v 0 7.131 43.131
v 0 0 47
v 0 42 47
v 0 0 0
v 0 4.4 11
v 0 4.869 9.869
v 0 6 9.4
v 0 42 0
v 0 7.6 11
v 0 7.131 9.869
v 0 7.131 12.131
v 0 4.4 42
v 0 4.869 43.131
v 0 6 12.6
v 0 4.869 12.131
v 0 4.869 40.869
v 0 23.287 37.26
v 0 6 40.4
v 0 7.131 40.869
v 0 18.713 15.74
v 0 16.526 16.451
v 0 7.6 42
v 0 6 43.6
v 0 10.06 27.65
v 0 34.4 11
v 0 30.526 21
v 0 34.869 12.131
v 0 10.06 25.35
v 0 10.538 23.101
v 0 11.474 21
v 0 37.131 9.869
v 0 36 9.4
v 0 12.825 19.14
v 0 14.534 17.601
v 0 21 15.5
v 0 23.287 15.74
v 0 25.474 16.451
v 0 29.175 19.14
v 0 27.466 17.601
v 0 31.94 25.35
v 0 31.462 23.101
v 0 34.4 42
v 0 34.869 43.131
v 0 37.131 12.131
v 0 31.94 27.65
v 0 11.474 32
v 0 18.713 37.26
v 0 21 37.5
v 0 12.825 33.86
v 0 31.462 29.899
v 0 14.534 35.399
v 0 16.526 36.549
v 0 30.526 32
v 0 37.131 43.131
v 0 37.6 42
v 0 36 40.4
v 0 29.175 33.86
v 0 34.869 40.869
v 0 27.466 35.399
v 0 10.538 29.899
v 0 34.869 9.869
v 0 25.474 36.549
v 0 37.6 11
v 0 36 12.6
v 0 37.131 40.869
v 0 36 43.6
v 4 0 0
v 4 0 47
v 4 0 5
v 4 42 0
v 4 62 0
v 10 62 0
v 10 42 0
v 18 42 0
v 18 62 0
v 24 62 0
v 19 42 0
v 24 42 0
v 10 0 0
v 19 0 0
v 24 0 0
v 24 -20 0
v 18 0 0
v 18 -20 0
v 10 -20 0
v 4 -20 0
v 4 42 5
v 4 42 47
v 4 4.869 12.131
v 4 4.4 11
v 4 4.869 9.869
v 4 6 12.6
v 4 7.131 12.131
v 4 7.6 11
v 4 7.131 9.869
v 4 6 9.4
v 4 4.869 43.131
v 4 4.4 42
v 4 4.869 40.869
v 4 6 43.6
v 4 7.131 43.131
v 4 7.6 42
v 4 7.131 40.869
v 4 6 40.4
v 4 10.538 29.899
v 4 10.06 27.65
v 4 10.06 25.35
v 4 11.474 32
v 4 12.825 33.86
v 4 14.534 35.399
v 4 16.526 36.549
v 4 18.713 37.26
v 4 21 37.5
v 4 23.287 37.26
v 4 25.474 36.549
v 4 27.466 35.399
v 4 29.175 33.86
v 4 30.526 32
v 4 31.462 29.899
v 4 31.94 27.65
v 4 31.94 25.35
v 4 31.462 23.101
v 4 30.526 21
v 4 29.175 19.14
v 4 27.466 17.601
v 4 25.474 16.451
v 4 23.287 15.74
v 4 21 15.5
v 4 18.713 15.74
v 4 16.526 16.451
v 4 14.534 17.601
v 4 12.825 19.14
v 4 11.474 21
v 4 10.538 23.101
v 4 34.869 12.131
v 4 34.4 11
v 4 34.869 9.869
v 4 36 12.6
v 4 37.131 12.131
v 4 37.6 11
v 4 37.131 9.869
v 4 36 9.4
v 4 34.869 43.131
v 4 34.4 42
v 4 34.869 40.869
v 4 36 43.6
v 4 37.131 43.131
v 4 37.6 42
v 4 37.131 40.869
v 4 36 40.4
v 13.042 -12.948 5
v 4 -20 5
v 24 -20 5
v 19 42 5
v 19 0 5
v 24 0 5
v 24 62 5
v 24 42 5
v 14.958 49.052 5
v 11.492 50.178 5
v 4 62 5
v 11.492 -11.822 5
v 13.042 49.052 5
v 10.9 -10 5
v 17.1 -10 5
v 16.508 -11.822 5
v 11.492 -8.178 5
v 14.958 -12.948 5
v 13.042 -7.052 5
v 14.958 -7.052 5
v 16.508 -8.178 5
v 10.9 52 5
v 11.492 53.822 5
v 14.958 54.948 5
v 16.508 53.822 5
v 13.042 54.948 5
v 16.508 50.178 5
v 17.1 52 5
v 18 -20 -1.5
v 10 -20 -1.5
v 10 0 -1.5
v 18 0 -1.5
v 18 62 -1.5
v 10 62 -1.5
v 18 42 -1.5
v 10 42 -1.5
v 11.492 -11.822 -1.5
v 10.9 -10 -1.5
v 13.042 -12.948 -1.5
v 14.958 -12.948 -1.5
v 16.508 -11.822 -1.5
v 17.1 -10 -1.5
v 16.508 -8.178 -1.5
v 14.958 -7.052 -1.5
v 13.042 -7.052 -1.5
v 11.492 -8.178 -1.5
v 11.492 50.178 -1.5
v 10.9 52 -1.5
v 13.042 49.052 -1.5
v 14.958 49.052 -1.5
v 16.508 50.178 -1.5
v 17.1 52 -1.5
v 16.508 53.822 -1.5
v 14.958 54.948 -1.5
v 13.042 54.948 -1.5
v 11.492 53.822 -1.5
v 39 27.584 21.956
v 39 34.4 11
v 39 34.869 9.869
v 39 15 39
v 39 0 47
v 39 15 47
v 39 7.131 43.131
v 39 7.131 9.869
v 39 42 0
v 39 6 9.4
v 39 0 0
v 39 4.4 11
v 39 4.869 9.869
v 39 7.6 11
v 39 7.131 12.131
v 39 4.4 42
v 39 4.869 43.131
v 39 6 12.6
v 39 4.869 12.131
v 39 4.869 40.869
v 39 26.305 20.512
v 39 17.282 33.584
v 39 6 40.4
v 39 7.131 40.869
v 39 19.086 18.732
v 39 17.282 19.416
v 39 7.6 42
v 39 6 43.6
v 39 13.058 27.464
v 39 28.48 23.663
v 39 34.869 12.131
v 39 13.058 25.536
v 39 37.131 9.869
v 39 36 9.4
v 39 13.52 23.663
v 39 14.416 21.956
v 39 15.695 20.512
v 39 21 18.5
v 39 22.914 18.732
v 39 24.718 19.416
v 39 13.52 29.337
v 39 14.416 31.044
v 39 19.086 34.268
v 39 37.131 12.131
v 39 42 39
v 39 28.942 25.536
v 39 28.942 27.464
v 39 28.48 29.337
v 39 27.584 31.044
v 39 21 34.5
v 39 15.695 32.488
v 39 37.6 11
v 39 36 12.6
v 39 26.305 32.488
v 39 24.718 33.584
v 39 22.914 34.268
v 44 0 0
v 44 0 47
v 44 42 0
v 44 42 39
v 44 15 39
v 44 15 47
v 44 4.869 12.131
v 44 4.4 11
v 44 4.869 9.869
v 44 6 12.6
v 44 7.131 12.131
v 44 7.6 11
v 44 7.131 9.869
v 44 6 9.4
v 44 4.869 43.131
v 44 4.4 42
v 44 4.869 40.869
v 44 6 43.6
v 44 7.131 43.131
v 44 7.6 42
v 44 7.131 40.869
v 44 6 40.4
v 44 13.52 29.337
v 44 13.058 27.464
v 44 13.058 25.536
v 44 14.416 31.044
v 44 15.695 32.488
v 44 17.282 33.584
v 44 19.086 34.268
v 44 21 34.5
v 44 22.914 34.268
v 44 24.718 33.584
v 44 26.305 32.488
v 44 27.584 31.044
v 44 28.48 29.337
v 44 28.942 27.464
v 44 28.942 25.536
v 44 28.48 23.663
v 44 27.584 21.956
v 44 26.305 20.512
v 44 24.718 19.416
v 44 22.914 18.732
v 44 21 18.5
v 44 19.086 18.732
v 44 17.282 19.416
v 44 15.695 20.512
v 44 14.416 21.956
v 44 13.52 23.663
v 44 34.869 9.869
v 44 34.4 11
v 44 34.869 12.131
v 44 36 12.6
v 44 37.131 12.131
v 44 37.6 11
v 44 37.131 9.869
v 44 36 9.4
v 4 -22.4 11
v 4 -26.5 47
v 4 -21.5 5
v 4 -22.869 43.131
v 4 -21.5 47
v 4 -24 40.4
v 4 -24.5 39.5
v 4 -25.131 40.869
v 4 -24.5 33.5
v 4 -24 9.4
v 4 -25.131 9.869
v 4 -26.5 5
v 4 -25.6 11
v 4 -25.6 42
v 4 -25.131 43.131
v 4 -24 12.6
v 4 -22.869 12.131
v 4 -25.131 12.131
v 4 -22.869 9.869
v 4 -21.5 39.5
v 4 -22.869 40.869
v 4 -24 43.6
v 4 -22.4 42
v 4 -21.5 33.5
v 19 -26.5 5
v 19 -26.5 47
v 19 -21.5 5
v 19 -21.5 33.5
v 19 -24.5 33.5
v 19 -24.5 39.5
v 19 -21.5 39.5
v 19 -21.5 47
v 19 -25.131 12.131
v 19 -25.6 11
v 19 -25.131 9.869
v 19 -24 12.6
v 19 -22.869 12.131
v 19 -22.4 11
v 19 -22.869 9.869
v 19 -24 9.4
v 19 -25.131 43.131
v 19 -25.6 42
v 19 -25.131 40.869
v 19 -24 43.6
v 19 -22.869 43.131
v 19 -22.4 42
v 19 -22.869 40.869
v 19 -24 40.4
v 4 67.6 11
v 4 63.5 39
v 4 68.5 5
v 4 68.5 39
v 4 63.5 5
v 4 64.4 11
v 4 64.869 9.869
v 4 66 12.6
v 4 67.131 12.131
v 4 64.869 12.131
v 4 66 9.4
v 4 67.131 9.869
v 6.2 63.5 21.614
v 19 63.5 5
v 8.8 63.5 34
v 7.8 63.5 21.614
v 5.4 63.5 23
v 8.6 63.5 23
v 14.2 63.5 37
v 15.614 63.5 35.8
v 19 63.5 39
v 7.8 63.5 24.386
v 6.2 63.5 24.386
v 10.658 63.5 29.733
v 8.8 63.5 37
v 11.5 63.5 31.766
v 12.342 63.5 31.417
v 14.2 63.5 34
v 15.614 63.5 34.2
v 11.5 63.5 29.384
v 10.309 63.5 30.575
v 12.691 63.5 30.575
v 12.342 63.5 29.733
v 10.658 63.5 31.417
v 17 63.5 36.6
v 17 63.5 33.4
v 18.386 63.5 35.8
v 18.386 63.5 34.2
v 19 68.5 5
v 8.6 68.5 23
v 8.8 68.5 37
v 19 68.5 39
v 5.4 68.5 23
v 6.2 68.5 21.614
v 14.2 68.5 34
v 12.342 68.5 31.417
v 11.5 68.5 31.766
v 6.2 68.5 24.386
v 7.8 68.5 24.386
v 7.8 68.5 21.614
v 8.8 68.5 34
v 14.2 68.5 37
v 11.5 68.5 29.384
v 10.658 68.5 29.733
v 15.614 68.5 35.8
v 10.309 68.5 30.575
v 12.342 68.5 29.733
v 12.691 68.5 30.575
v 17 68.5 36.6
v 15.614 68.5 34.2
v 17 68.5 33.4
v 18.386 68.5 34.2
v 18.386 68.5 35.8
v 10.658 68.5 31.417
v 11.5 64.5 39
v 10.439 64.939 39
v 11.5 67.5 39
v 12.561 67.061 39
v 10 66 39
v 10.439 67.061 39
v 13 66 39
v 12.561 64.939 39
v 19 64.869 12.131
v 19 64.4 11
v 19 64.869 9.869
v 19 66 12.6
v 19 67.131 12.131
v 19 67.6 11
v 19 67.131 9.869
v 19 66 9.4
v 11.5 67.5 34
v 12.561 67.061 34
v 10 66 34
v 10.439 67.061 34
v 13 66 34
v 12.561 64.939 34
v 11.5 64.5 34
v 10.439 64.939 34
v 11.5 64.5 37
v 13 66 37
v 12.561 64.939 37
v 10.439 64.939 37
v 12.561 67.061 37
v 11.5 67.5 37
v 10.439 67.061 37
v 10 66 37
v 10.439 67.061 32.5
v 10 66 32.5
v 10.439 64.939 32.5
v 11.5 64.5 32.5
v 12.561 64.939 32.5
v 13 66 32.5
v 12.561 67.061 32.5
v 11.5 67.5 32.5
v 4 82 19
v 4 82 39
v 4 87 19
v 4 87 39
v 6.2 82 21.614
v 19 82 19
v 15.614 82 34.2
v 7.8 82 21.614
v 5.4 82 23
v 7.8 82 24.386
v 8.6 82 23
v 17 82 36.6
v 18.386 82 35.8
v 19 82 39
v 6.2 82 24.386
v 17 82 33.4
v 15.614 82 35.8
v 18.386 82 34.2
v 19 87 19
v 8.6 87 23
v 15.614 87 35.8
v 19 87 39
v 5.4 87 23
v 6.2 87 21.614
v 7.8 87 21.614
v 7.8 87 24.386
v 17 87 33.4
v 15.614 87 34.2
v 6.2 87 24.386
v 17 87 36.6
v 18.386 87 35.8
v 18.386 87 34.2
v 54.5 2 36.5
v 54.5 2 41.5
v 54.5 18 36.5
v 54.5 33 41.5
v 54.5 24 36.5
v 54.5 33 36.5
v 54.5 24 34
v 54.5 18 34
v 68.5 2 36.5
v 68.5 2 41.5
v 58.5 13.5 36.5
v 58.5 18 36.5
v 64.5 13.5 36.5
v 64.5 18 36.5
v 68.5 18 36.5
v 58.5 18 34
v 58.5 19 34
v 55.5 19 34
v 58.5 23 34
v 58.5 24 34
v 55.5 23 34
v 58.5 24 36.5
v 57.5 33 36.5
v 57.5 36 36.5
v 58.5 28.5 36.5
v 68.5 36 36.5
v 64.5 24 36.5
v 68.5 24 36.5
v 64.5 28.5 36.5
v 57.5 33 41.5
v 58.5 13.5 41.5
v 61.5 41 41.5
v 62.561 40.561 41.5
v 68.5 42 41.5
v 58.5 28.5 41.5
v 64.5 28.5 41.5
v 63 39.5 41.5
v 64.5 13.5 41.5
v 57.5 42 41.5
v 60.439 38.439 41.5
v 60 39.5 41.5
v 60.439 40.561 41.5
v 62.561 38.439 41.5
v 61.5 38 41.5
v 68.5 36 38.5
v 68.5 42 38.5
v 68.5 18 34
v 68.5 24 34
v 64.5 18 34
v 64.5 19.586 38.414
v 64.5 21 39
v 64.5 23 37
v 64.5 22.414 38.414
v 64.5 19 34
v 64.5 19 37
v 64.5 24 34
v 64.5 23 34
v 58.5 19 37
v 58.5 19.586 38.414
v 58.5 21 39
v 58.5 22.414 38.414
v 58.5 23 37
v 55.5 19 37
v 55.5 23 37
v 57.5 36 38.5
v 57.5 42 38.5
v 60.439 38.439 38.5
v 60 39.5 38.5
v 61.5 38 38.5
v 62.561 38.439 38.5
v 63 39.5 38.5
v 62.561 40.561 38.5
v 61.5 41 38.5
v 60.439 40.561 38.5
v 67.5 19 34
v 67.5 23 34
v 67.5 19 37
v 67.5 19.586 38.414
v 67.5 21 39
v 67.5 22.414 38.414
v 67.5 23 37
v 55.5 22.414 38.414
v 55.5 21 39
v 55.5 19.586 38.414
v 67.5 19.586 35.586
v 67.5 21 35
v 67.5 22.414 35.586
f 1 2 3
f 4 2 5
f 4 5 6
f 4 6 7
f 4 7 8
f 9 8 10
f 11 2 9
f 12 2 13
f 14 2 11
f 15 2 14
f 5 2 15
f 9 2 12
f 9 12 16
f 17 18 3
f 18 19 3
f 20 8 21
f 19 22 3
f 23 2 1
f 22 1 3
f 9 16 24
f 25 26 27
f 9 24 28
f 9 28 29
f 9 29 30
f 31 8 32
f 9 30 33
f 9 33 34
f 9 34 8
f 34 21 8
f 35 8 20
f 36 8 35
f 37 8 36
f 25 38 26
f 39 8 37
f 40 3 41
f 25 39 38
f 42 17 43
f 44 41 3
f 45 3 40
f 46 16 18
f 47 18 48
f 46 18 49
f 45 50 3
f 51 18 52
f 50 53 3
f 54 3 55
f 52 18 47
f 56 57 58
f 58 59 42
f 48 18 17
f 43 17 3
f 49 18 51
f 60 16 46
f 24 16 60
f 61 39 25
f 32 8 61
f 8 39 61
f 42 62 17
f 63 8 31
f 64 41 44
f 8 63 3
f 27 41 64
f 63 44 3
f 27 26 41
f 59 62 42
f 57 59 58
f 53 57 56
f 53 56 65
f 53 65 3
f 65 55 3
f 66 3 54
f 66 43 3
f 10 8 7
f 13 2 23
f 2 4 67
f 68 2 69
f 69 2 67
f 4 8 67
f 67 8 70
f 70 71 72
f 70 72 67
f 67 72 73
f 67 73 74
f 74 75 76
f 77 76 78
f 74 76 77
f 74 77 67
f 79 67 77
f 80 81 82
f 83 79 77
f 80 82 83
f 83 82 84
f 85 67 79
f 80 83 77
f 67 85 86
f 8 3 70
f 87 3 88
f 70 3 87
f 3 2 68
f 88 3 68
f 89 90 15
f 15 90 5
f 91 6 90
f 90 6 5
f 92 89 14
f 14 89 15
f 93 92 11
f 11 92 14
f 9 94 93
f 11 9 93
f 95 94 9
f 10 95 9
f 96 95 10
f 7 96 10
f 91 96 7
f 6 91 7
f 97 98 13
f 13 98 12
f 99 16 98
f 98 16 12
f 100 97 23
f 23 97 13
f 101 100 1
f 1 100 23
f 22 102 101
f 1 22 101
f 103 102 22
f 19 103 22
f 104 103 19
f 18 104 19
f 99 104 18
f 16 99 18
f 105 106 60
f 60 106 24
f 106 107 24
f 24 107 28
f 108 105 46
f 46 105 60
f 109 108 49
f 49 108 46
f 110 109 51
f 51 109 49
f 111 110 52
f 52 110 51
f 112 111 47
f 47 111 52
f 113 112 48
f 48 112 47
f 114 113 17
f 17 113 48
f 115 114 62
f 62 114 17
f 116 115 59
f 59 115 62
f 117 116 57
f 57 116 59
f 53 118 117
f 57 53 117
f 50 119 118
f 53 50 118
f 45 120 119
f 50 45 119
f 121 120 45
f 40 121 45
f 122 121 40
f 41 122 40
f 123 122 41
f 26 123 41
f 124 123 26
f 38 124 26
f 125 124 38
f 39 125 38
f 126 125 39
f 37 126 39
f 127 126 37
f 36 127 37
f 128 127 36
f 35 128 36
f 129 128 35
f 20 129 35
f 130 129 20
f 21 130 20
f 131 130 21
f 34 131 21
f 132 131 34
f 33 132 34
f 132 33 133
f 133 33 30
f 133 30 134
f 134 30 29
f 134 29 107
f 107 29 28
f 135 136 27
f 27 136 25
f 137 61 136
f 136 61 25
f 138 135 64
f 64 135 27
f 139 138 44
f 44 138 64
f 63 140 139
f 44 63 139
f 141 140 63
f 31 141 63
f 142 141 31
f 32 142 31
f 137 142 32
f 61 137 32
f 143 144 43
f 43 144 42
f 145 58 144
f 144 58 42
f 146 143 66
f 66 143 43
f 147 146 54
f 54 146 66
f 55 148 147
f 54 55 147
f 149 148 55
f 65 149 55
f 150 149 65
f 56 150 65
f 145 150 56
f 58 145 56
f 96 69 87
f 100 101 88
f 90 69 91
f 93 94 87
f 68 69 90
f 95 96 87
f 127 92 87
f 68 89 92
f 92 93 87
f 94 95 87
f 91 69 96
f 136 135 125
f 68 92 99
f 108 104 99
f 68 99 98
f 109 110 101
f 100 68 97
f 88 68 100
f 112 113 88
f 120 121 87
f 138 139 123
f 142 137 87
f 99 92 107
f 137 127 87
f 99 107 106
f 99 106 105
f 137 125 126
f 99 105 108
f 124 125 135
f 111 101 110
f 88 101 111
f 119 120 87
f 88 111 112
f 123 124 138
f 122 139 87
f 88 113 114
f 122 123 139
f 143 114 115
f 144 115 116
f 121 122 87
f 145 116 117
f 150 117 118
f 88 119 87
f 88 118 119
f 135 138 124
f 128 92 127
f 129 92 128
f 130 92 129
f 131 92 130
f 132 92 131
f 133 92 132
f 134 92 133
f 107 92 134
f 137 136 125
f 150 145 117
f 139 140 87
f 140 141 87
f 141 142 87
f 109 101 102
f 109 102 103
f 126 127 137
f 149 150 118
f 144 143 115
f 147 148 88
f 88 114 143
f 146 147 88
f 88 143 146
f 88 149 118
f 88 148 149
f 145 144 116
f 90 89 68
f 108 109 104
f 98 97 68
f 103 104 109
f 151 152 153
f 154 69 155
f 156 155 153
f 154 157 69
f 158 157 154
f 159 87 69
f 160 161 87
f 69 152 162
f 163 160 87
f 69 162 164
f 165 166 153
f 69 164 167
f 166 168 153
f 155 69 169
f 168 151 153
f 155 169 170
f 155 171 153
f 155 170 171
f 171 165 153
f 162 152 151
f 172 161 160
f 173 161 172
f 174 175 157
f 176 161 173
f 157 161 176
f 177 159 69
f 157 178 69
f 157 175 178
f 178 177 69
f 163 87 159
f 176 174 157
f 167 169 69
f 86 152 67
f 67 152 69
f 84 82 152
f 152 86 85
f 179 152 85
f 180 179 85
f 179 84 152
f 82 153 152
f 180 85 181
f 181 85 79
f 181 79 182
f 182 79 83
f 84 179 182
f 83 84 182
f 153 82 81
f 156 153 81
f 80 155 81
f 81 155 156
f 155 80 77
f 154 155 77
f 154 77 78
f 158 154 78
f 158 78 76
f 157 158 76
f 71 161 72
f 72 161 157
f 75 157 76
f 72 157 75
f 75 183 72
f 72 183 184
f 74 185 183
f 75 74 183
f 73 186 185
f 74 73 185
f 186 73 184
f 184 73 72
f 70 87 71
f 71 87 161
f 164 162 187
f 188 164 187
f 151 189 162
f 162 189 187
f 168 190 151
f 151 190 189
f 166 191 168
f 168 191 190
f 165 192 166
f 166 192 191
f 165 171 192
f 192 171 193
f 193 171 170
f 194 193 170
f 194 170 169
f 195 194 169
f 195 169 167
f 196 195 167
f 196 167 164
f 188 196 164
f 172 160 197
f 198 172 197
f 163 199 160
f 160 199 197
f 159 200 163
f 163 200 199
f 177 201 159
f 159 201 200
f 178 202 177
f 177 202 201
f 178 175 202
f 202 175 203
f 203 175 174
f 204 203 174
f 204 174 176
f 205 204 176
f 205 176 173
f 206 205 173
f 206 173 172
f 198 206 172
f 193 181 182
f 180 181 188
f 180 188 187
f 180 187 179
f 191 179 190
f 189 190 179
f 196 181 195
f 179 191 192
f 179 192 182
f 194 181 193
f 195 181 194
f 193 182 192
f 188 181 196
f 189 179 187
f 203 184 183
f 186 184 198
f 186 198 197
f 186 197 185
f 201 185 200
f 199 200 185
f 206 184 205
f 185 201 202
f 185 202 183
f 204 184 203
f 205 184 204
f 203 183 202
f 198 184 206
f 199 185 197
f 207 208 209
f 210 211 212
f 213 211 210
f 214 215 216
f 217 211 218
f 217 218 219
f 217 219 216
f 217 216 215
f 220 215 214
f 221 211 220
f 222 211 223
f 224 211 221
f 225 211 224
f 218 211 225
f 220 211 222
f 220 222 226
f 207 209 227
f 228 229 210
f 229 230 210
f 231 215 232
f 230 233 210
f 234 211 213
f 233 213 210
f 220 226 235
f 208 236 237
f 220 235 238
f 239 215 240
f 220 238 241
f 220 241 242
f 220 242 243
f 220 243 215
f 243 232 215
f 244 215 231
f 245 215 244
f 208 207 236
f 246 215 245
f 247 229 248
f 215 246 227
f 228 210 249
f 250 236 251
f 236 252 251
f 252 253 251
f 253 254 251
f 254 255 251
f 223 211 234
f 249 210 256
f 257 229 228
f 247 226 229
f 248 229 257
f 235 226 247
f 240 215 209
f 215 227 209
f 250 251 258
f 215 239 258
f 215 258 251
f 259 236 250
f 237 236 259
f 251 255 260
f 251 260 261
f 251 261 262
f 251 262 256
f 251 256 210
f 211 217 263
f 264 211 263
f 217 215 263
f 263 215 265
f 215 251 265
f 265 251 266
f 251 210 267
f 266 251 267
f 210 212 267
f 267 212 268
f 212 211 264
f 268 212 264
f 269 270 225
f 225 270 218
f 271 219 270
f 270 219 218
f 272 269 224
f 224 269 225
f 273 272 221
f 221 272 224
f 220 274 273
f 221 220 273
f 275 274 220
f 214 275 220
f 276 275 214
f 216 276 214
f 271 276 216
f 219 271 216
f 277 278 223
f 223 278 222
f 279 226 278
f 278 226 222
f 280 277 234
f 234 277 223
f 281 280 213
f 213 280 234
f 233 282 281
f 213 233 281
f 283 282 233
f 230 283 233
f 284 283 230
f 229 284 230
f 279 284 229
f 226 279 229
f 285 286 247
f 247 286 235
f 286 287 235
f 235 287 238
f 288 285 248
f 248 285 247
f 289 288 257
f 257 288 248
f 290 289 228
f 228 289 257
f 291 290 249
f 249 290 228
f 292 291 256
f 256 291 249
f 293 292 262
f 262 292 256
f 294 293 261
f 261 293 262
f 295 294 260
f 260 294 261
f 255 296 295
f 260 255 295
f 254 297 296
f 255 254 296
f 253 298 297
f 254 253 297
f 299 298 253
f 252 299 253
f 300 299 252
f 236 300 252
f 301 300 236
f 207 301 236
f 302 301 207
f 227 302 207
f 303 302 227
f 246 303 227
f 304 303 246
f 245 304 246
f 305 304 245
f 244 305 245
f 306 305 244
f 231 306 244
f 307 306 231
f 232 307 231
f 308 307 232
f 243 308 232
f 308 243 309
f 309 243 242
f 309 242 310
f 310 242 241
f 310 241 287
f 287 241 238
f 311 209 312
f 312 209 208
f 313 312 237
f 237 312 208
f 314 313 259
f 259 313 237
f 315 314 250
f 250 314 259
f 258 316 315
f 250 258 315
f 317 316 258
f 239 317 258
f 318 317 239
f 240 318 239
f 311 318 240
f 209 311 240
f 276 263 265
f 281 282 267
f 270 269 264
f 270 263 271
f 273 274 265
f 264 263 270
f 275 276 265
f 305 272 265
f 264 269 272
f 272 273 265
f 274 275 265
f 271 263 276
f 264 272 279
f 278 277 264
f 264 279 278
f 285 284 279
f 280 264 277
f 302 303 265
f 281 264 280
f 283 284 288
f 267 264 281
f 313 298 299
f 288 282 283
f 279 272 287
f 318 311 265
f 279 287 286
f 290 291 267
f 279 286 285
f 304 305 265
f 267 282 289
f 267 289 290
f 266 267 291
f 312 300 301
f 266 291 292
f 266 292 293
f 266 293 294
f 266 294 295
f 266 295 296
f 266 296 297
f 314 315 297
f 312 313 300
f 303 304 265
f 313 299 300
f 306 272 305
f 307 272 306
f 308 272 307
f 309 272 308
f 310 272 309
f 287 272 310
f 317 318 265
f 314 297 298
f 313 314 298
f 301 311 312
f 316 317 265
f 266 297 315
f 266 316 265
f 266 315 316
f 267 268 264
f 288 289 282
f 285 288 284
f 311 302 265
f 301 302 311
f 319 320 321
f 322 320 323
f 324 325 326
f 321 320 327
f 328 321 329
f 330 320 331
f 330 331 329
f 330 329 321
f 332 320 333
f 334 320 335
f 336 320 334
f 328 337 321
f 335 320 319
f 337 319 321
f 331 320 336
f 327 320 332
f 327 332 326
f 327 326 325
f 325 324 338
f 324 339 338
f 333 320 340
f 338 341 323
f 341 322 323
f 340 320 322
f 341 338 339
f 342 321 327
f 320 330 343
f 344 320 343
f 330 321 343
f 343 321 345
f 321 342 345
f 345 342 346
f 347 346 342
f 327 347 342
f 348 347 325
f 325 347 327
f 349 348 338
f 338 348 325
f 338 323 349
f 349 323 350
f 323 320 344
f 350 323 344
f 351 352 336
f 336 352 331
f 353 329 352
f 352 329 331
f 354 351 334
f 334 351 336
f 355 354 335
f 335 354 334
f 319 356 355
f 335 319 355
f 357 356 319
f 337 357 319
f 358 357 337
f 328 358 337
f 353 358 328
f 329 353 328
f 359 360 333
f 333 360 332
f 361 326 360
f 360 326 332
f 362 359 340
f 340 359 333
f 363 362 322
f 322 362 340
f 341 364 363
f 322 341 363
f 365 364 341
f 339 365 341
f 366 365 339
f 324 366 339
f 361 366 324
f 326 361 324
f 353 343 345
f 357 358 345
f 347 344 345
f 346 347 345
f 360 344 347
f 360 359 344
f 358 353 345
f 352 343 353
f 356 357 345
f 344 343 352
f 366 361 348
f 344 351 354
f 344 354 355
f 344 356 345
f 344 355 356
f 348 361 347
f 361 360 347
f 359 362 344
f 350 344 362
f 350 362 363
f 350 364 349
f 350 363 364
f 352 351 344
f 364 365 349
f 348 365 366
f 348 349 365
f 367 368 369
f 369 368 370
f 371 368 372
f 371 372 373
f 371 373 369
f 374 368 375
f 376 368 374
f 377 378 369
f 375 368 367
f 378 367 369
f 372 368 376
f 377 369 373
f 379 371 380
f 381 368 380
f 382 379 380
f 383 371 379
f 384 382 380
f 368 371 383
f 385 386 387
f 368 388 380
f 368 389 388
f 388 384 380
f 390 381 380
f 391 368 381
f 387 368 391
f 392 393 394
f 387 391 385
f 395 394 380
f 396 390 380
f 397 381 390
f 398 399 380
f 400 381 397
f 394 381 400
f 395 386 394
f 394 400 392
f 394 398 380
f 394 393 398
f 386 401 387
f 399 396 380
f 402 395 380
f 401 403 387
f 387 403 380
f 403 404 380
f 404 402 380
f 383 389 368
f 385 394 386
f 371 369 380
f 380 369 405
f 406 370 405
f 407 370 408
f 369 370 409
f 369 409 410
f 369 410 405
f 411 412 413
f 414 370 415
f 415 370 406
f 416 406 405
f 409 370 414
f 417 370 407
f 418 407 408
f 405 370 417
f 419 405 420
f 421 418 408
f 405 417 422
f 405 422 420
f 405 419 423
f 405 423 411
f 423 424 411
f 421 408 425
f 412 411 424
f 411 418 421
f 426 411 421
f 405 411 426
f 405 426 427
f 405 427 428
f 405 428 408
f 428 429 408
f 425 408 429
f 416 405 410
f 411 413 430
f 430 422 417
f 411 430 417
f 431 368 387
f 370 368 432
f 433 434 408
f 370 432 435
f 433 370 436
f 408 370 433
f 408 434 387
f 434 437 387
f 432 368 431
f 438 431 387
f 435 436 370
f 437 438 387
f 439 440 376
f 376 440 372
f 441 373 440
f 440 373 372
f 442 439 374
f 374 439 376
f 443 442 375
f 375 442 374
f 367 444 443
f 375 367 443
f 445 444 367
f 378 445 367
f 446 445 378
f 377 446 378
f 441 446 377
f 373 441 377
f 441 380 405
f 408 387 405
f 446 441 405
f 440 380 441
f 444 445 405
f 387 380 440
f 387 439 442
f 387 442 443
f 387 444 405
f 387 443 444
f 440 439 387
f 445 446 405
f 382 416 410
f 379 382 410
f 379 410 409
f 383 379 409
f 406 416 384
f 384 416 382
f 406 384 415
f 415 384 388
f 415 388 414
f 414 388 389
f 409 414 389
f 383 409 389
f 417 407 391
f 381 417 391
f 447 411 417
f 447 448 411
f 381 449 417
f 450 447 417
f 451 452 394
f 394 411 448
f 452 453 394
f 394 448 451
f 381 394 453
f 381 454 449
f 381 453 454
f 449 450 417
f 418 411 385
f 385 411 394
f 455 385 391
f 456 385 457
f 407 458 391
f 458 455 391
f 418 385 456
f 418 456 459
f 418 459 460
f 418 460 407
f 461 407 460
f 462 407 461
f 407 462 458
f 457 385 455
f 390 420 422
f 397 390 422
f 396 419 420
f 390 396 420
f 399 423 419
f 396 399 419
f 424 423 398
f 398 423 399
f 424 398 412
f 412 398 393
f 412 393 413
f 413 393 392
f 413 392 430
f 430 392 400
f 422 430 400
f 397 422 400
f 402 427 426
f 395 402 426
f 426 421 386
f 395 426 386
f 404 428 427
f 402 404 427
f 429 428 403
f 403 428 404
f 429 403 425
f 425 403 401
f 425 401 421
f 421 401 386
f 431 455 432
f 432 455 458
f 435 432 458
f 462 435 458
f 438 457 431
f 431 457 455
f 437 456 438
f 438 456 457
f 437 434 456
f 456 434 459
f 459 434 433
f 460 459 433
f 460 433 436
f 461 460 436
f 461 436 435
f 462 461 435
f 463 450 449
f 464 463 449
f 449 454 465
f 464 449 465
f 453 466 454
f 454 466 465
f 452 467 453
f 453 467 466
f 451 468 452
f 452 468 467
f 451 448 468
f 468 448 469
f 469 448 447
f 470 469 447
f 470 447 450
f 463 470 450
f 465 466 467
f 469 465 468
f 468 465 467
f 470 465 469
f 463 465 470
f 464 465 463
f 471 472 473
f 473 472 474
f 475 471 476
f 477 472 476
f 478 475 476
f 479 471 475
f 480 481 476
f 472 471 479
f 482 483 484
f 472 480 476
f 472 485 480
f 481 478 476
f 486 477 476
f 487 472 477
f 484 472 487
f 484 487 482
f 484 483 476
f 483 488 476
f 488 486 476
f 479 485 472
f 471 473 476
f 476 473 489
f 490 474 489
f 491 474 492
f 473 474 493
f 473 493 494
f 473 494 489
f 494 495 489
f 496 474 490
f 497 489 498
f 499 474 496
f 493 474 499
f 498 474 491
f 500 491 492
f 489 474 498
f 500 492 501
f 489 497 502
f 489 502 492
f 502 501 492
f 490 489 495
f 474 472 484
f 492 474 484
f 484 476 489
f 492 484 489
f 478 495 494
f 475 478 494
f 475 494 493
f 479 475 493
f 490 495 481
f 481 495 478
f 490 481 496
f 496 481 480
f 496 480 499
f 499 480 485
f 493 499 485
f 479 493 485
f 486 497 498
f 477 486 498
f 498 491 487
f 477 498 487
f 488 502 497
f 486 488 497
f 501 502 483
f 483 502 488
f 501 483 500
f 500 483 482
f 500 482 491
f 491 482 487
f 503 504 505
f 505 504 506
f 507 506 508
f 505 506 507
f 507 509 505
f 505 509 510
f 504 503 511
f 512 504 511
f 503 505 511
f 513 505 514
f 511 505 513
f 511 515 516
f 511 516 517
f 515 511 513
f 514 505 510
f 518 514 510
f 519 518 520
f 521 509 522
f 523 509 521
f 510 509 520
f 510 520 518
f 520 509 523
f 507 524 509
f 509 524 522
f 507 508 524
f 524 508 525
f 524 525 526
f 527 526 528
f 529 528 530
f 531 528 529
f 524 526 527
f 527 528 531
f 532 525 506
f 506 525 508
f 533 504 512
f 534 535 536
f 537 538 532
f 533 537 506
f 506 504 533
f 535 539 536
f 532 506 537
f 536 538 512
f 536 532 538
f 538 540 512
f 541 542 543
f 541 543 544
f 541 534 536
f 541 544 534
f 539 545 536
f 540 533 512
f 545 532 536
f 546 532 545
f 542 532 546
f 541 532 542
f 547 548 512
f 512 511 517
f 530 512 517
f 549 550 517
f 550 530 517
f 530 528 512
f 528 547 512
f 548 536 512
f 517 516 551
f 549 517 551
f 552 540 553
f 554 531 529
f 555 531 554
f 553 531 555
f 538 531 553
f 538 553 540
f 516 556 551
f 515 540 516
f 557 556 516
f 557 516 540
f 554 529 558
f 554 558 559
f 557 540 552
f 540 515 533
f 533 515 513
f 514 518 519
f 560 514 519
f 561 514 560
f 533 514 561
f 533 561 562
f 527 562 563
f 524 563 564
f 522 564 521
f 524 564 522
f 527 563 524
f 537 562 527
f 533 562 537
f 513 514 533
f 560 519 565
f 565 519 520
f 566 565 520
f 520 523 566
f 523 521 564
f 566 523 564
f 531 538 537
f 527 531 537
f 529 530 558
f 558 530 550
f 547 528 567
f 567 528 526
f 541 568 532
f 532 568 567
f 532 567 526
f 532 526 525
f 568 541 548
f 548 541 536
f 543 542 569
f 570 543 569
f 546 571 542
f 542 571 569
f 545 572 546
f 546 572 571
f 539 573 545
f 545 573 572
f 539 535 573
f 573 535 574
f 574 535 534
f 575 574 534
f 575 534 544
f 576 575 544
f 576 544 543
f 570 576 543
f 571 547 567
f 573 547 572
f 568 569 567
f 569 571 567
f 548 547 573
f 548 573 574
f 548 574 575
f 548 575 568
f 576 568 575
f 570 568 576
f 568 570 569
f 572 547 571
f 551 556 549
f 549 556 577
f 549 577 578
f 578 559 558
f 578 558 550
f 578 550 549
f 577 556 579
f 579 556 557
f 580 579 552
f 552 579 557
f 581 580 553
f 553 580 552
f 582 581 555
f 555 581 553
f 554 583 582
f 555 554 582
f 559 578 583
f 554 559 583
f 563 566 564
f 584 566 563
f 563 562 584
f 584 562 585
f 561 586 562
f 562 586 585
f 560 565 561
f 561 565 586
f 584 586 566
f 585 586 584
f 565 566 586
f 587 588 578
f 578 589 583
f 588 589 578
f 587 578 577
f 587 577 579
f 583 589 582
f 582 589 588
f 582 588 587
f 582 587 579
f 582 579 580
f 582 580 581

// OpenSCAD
/*import("/home/knezi/Documents/3d-tiskarna/knezi/RebeliX/src/Extrud
er_filament_1.75mm/Compact_Bowden_Extruder.stl", convexity=3);

translate([20, 0, 0]){
import("/home/knezi/Documents/3d-tiskarna/knezi/RebeliX/src/Extruder_filament_1.75mm/Idler_Part_1.stl", convexity=3);

import("/home/knezi/Documents/3d-tiskarna/knezi/RebeliX/src/Extruder_filament_1.75mm/Idler_Part_2.stl", convexity=3);
}*/

filament_diameter=2;
filament_feed_hole_d=(filament_diameter*1.1)/cos(180/8);
m3_nut_diameter = 6.1;

difference() {
	union() {
		cube([4,42,47]);
		//translate([-40,0]) cube([40,47,5]);
//		translate([-20,0,5]) cube([20,5,5]);
		//translate([-40,42,5]) cube([40,5,45]);

	difference() {
			union() {
				translate([4,-20,0]) cube([20,20,5]);
				translate([10,-20,-1.5]) cube([8,20,1.5]);
			}
			translate([14,-10,-2]) cylinder(r=3.1,h=10);
		}

		translate([0,62,0]) difference() {
			union() {
				translate([4,-20,0]) cube([20,20,5]);
				translate([10,-20,-1.5]) cube([8,20,1.5]);
			}
			translate([14,-10,-2]) cylinder(r=3.1,h=10);
		}
	}
	
	translate([-1,6,5+6])
		rotate([0,90,0]) cylinder(r=1.6,h=10,$fn=8);
	translate([-1,42-(6),5+6])
		rotate([0,90,0]) cylinder(r=1.6,h=10,$fn=8);
	translate([-1,6,5+6+31])
		rotate([0,90,0]) cylinder(r=1.6,h=10,$fn=8);
	translate([-1,42-(6),5+6+31])
		rotate([0,90,0]) cylinder(r=1.6,h=10,$fn=8);

	translate([-1,21,26.5]) {// velka dira pro motor
		rotate([0,90,0]) 	cylinder(r=11,h=10);

		}
}
	



translate([19+20,21,26.5]) { // uložení ložiska hřídele
	difference() {
		union() {
			translate([0,-21,-26.5]) cube([5,42,39]);
//			rotate([0,90,0]) cylinder(r=10,h=6);
			translate([0,-21,12.5]) cube([5,15,8]);
		}
		translate([-1,0]) rotate([0,90,0]) cylinder(r=8,h=10);
//		translate([-1,0]) rotate([0,90,0]) cylinder(r=6,h=11);
		//translate([-1,4.4-21,9.4-26.5]) cube([7,5,5]);
		//translate([-1,42-7.6-21,9.4-26.5]) cube([7,5,5]);

		translate([-1-19,6-21,5+6-26.5])
			rotate([0,90,0]) cylinder(r=1.6,h=30,$fn=8);
		translate([-1-19,42-(6)-21,5+6-26.5])
			rotate([0,90,0]) cylinder(r=1.6,h=30,$fn=8);



		translate([-1-19,6-21,5+6+31-26.5])
			rotate([0,90,0]) cylinder(r=1.6,h=30,$fn=8);
	}
}



translate([4,0,0]) cube([15,42,5]);
// pruchod filamentu

translate([0,-30,0])
difference() {
	translate([4,3.5,5]) cube([15,5,35+7]);
	translate([3,2+3.5,33.5]) cube([17,6,6]);
	translate([-1,6,5+6])
		rotate([0,90,0]) cylinder(r=1.6,h=30,$fn=8);
	translate([-1,6,5+6+31])
		rotate([0,90,0]) cylinder(r=1.6,h=40,$fn=8);
}

// drzak s bowdenem
translate([0,30,0])
difference() { 
	translate([4,33.5,5]) cube([15,5,34]);
//	translate([4+7.5,39.5,35]) rotate([0,0,30]) cylinder(r=m3_nut_diameter/2,h=50,$fn=6);
	translate([4+7.5-2.7,36-3.5,34]) cube([5.4, 7, 3]);
	translate([4+7.5,39.5-3.5,32.5]) cylinder(r=1.5,h=20,$fn=8);
	translate([-1,42-(6),5+6])
	rotate([0,90,0]) cylinder(r=1.6,h=30,$fn=8);
	//upevnění bowdenu
	translate([19-2,36-3.5,35]) rotate([-90,30,0]) cylinder(r=1.6,h=50,$fn=6);
	translate([4+3,36-3.5,23]) rotate([-90,0,0]) cylinder(r=1.6,h=50,$fn=6);

	translate([11.5,-5-3.5, 26.5+4.075]) rotate([-90,0,0]) cylinder(r=filament_feed_hole_d/2,h=50,$fn=8);	
}
	



//drzak bowden	
translate([0,45,0]) difference() {
	translate([4,37,9+5+5]) cube([15,5,20]);
	//upevnění bowdenu
	translate([19-2,36,35]) rotate([-90,30,0]) cylinder(r=1.6,h=50,$fn=6);
	translate([4+3,36,23]) rotate([-90,0,0]) cylinder(r=1.6,h=50,$fn=6);
}




// IDLER
translate([50,0,0])
difference() {
	union() {
		translate([4.5,2,36.5]) cube([14,40,5]);
		translate([4.5,24,37]) rotate([-180,0]) cube([14,6,3]);
	}
	translate([4,36,36]) cube([15.5,47,2.5]);
	//translate([4,0,36]) cube([3.5,9,7]);
	translate([4,46-13,36]) cube([3.5,13,7]);
//	translate([11.5,21,37]) rotate([0,90]) cylinder(r=6.5, h=6, center=true); // test lozisko
	translate([11.5-3,21-7.5,33]) cube([6,15,20]); 
	translate([11.5,21,37]) rotate([0,90,0]) cylinder(r=2, h=12, center=true, $fn=8);
	translate([11.5-6,23,37]) rotate([-180,0]) cube([12,4,10]);
translate([4+7.5,39.5,32.5]) cylinder(r=1.5,h=20,$fn=8);
}




//translate([-10,21,26.5]) rotate([0,90,0]) cylinder(r=4.075, h=40); // test hridel
//translate([11.5,21,37]) rotate([0,90]) cylinder(r=6.5, h=6, center=true); // test lozisko
